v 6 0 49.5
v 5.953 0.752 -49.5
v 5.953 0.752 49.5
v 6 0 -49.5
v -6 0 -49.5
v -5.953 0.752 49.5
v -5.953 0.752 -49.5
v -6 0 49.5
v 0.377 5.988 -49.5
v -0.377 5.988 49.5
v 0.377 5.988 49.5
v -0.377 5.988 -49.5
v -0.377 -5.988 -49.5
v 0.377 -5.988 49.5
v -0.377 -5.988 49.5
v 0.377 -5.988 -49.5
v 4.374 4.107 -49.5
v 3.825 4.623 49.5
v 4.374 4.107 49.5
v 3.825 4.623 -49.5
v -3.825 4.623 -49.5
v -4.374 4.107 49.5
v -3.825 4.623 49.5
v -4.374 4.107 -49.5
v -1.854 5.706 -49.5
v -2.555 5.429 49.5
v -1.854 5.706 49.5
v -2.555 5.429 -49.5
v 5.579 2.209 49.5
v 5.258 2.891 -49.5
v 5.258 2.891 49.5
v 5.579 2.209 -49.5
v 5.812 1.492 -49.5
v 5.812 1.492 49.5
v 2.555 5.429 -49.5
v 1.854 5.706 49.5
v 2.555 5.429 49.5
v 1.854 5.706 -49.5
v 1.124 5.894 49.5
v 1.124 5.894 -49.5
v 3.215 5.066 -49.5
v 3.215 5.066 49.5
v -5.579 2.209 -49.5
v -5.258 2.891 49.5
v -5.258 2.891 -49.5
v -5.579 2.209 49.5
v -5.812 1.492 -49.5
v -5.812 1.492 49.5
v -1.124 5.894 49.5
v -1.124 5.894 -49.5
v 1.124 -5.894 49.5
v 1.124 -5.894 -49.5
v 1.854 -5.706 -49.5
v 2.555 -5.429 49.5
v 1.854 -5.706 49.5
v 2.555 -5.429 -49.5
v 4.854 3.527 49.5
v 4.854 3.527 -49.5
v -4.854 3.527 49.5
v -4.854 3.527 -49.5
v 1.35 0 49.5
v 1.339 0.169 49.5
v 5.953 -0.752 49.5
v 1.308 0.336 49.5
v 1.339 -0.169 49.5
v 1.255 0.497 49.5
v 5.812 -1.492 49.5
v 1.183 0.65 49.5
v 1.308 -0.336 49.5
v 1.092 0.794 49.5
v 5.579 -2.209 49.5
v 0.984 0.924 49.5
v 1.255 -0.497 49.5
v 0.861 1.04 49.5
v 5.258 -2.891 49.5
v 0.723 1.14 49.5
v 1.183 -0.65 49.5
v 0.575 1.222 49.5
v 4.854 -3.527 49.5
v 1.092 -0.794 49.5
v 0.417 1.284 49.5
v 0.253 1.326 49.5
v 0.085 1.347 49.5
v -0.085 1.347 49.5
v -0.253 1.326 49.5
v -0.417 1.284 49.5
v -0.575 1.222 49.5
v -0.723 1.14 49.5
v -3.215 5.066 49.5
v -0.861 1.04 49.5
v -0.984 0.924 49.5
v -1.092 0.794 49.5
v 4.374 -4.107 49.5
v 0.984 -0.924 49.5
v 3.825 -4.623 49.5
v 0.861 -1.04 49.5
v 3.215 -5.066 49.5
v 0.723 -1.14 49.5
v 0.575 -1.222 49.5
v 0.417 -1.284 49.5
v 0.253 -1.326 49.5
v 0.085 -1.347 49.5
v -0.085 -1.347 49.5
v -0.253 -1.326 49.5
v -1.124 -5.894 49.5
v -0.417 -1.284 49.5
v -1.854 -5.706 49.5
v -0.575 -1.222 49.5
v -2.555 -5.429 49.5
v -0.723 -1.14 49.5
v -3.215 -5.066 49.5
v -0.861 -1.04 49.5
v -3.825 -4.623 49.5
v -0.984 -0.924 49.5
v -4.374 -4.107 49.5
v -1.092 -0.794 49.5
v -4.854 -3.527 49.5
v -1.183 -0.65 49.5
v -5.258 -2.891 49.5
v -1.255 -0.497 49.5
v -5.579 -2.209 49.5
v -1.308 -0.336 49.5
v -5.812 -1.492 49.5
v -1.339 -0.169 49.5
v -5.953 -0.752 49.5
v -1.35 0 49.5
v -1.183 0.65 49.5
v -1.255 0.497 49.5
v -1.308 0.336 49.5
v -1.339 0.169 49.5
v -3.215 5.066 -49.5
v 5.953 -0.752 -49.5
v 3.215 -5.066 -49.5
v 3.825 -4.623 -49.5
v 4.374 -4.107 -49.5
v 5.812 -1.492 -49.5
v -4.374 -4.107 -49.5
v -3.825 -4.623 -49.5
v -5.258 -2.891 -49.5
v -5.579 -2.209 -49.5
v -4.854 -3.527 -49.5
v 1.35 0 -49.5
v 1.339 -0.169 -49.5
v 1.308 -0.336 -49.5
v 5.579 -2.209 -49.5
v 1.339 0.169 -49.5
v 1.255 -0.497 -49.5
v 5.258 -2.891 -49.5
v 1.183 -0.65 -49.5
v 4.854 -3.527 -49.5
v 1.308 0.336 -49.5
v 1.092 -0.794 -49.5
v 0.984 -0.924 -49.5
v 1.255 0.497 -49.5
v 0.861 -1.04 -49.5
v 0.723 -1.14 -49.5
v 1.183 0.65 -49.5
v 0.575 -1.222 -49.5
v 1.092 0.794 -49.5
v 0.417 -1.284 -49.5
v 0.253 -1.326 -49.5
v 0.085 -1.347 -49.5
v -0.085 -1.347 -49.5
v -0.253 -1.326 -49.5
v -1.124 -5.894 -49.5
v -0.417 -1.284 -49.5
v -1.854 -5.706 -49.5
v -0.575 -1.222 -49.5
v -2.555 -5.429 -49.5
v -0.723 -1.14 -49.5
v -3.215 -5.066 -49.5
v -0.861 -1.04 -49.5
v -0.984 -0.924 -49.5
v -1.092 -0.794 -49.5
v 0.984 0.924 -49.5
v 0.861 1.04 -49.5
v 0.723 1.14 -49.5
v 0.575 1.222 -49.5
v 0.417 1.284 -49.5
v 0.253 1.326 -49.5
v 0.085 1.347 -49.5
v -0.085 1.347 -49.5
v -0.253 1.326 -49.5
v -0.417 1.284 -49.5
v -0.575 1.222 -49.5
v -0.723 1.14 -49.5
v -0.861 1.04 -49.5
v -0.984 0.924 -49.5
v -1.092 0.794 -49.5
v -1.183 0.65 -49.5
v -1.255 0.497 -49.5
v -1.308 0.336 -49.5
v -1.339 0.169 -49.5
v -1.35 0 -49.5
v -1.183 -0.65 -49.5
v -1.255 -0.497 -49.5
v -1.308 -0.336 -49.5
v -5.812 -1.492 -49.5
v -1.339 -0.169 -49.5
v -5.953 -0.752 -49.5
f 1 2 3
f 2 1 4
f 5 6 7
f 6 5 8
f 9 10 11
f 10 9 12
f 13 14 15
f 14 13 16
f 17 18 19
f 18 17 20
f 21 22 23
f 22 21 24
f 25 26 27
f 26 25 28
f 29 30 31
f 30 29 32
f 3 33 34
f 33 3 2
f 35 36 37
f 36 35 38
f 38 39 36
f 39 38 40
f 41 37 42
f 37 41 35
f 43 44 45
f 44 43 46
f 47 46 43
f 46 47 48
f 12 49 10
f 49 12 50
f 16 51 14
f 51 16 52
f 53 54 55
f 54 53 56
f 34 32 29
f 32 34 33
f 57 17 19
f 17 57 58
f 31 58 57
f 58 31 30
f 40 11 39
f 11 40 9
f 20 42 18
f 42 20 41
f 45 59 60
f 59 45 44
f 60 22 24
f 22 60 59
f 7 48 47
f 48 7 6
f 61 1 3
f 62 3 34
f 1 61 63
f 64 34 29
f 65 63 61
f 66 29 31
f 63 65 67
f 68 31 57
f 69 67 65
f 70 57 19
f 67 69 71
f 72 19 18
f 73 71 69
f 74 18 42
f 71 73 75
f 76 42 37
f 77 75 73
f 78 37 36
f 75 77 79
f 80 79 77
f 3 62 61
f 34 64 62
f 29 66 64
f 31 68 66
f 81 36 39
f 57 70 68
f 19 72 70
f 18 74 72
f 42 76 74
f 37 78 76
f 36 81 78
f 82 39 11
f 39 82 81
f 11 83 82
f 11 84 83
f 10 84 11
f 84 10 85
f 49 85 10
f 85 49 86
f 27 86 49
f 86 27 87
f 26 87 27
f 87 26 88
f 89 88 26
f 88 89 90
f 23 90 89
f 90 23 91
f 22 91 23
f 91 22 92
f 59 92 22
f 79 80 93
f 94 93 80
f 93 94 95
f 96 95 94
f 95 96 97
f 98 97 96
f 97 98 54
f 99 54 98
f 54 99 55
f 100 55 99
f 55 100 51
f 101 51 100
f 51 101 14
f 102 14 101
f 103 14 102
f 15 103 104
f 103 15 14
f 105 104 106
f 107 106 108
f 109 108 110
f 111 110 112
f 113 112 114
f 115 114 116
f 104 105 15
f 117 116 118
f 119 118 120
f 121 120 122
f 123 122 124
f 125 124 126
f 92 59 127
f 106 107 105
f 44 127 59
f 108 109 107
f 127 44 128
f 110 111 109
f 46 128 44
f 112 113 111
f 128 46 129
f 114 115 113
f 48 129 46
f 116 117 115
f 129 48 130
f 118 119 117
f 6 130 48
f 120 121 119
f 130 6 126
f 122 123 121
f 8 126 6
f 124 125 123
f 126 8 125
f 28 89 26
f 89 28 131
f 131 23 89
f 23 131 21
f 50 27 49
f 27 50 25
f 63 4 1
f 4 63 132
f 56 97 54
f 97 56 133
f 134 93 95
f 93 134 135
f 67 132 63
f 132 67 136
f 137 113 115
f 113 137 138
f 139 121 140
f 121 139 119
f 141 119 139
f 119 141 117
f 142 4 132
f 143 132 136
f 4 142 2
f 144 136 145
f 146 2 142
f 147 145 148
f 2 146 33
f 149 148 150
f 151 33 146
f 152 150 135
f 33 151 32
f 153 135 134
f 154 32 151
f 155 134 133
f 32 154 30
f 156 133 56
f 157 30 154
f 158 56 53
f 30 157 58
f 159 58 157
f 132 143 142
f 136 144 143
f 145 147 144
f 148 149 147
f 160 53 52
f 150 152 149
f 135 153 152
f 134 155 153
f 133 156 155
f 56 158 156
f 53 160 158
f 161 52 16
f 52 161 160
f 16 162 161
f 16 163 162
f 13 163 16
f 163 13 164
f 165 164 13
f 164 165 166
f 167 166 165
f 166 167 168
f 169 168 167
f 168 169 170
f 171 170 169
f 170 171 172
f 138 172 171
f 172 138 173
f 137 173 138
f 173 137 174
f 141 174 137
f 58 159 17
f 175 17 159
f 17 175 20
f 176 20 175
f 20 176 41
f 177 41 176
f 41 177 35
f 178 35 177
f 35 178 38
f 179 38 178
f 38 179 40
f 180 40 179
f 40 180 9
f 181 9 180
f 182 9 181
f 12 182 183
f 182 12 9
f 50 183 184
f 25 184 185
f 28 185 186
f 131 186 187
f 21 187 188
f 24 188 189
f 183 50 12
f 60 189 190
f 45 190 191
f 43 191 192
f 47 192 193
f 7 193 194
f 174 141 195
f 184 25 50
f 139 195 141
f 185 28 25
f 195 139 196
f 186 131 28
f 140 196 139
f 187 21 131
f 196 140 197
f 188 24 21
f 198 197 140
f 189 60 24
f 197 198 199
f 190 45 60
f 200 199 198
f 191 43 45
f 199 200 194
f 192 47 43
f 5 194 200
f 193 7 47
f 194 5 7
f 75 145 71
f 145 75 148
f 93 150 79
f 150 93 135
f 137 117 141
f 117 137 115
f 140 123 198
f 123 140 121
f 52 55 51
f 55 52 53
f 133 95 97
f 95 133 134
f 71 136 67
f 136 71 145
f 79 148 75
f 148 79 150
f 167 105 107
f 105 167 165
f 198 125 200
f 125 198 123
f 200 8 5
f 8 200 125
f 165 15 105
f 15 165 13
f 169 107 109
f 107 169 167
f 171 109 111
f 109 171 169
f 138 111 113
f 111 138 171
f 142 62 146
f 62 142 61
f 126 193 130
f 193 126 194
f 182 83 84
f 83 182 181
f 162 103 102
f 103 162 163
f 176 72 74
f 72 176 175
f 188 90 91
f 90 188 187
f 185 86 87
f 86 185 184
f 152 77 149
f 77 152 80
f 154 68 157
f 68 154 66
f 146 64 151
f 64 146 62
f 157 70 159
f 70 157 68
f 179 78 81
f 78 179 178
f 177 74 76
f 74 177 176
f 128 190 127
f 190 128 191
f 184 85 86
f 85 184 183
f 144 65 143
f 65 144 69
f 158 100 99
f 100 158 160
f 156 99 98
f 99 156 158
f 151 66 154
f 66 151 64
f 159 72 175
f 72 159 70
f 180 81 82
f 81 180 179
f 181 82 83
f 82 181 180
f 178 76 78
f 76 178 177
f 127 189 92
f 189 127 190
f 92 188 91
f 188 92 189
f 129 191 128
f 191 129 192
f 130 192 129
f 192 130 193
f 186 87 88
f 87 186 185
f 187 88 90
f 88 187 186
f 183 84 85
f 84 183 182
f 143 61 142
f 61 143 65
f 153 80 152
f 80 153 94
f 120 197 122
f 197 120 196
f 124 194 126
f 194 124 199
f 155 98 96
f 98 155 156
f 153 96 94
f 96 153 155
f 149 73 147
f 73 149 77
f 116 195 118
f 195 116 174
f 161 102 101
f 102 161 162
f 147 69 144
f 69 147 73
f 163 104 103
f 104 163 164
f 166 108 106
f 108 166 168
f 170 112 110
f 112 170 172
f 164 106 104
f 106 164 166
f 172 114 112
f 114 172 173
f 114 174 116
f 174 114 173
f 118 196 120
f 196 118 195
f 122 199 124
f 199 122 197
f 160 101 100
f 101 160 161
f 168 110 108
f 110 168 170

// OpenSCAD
$fn = 50;


difference() {
	union() {
		translate(v = [0, 0, -49.5000000000]) {
			cylinder(h = 99, r = 6.0000000000);
		}
	}
	union() {
		translate(v = [0, 0, -100.0000000000]) {
			cylinder(h = 200, r = 1.3500000000);
		}
	}
}
